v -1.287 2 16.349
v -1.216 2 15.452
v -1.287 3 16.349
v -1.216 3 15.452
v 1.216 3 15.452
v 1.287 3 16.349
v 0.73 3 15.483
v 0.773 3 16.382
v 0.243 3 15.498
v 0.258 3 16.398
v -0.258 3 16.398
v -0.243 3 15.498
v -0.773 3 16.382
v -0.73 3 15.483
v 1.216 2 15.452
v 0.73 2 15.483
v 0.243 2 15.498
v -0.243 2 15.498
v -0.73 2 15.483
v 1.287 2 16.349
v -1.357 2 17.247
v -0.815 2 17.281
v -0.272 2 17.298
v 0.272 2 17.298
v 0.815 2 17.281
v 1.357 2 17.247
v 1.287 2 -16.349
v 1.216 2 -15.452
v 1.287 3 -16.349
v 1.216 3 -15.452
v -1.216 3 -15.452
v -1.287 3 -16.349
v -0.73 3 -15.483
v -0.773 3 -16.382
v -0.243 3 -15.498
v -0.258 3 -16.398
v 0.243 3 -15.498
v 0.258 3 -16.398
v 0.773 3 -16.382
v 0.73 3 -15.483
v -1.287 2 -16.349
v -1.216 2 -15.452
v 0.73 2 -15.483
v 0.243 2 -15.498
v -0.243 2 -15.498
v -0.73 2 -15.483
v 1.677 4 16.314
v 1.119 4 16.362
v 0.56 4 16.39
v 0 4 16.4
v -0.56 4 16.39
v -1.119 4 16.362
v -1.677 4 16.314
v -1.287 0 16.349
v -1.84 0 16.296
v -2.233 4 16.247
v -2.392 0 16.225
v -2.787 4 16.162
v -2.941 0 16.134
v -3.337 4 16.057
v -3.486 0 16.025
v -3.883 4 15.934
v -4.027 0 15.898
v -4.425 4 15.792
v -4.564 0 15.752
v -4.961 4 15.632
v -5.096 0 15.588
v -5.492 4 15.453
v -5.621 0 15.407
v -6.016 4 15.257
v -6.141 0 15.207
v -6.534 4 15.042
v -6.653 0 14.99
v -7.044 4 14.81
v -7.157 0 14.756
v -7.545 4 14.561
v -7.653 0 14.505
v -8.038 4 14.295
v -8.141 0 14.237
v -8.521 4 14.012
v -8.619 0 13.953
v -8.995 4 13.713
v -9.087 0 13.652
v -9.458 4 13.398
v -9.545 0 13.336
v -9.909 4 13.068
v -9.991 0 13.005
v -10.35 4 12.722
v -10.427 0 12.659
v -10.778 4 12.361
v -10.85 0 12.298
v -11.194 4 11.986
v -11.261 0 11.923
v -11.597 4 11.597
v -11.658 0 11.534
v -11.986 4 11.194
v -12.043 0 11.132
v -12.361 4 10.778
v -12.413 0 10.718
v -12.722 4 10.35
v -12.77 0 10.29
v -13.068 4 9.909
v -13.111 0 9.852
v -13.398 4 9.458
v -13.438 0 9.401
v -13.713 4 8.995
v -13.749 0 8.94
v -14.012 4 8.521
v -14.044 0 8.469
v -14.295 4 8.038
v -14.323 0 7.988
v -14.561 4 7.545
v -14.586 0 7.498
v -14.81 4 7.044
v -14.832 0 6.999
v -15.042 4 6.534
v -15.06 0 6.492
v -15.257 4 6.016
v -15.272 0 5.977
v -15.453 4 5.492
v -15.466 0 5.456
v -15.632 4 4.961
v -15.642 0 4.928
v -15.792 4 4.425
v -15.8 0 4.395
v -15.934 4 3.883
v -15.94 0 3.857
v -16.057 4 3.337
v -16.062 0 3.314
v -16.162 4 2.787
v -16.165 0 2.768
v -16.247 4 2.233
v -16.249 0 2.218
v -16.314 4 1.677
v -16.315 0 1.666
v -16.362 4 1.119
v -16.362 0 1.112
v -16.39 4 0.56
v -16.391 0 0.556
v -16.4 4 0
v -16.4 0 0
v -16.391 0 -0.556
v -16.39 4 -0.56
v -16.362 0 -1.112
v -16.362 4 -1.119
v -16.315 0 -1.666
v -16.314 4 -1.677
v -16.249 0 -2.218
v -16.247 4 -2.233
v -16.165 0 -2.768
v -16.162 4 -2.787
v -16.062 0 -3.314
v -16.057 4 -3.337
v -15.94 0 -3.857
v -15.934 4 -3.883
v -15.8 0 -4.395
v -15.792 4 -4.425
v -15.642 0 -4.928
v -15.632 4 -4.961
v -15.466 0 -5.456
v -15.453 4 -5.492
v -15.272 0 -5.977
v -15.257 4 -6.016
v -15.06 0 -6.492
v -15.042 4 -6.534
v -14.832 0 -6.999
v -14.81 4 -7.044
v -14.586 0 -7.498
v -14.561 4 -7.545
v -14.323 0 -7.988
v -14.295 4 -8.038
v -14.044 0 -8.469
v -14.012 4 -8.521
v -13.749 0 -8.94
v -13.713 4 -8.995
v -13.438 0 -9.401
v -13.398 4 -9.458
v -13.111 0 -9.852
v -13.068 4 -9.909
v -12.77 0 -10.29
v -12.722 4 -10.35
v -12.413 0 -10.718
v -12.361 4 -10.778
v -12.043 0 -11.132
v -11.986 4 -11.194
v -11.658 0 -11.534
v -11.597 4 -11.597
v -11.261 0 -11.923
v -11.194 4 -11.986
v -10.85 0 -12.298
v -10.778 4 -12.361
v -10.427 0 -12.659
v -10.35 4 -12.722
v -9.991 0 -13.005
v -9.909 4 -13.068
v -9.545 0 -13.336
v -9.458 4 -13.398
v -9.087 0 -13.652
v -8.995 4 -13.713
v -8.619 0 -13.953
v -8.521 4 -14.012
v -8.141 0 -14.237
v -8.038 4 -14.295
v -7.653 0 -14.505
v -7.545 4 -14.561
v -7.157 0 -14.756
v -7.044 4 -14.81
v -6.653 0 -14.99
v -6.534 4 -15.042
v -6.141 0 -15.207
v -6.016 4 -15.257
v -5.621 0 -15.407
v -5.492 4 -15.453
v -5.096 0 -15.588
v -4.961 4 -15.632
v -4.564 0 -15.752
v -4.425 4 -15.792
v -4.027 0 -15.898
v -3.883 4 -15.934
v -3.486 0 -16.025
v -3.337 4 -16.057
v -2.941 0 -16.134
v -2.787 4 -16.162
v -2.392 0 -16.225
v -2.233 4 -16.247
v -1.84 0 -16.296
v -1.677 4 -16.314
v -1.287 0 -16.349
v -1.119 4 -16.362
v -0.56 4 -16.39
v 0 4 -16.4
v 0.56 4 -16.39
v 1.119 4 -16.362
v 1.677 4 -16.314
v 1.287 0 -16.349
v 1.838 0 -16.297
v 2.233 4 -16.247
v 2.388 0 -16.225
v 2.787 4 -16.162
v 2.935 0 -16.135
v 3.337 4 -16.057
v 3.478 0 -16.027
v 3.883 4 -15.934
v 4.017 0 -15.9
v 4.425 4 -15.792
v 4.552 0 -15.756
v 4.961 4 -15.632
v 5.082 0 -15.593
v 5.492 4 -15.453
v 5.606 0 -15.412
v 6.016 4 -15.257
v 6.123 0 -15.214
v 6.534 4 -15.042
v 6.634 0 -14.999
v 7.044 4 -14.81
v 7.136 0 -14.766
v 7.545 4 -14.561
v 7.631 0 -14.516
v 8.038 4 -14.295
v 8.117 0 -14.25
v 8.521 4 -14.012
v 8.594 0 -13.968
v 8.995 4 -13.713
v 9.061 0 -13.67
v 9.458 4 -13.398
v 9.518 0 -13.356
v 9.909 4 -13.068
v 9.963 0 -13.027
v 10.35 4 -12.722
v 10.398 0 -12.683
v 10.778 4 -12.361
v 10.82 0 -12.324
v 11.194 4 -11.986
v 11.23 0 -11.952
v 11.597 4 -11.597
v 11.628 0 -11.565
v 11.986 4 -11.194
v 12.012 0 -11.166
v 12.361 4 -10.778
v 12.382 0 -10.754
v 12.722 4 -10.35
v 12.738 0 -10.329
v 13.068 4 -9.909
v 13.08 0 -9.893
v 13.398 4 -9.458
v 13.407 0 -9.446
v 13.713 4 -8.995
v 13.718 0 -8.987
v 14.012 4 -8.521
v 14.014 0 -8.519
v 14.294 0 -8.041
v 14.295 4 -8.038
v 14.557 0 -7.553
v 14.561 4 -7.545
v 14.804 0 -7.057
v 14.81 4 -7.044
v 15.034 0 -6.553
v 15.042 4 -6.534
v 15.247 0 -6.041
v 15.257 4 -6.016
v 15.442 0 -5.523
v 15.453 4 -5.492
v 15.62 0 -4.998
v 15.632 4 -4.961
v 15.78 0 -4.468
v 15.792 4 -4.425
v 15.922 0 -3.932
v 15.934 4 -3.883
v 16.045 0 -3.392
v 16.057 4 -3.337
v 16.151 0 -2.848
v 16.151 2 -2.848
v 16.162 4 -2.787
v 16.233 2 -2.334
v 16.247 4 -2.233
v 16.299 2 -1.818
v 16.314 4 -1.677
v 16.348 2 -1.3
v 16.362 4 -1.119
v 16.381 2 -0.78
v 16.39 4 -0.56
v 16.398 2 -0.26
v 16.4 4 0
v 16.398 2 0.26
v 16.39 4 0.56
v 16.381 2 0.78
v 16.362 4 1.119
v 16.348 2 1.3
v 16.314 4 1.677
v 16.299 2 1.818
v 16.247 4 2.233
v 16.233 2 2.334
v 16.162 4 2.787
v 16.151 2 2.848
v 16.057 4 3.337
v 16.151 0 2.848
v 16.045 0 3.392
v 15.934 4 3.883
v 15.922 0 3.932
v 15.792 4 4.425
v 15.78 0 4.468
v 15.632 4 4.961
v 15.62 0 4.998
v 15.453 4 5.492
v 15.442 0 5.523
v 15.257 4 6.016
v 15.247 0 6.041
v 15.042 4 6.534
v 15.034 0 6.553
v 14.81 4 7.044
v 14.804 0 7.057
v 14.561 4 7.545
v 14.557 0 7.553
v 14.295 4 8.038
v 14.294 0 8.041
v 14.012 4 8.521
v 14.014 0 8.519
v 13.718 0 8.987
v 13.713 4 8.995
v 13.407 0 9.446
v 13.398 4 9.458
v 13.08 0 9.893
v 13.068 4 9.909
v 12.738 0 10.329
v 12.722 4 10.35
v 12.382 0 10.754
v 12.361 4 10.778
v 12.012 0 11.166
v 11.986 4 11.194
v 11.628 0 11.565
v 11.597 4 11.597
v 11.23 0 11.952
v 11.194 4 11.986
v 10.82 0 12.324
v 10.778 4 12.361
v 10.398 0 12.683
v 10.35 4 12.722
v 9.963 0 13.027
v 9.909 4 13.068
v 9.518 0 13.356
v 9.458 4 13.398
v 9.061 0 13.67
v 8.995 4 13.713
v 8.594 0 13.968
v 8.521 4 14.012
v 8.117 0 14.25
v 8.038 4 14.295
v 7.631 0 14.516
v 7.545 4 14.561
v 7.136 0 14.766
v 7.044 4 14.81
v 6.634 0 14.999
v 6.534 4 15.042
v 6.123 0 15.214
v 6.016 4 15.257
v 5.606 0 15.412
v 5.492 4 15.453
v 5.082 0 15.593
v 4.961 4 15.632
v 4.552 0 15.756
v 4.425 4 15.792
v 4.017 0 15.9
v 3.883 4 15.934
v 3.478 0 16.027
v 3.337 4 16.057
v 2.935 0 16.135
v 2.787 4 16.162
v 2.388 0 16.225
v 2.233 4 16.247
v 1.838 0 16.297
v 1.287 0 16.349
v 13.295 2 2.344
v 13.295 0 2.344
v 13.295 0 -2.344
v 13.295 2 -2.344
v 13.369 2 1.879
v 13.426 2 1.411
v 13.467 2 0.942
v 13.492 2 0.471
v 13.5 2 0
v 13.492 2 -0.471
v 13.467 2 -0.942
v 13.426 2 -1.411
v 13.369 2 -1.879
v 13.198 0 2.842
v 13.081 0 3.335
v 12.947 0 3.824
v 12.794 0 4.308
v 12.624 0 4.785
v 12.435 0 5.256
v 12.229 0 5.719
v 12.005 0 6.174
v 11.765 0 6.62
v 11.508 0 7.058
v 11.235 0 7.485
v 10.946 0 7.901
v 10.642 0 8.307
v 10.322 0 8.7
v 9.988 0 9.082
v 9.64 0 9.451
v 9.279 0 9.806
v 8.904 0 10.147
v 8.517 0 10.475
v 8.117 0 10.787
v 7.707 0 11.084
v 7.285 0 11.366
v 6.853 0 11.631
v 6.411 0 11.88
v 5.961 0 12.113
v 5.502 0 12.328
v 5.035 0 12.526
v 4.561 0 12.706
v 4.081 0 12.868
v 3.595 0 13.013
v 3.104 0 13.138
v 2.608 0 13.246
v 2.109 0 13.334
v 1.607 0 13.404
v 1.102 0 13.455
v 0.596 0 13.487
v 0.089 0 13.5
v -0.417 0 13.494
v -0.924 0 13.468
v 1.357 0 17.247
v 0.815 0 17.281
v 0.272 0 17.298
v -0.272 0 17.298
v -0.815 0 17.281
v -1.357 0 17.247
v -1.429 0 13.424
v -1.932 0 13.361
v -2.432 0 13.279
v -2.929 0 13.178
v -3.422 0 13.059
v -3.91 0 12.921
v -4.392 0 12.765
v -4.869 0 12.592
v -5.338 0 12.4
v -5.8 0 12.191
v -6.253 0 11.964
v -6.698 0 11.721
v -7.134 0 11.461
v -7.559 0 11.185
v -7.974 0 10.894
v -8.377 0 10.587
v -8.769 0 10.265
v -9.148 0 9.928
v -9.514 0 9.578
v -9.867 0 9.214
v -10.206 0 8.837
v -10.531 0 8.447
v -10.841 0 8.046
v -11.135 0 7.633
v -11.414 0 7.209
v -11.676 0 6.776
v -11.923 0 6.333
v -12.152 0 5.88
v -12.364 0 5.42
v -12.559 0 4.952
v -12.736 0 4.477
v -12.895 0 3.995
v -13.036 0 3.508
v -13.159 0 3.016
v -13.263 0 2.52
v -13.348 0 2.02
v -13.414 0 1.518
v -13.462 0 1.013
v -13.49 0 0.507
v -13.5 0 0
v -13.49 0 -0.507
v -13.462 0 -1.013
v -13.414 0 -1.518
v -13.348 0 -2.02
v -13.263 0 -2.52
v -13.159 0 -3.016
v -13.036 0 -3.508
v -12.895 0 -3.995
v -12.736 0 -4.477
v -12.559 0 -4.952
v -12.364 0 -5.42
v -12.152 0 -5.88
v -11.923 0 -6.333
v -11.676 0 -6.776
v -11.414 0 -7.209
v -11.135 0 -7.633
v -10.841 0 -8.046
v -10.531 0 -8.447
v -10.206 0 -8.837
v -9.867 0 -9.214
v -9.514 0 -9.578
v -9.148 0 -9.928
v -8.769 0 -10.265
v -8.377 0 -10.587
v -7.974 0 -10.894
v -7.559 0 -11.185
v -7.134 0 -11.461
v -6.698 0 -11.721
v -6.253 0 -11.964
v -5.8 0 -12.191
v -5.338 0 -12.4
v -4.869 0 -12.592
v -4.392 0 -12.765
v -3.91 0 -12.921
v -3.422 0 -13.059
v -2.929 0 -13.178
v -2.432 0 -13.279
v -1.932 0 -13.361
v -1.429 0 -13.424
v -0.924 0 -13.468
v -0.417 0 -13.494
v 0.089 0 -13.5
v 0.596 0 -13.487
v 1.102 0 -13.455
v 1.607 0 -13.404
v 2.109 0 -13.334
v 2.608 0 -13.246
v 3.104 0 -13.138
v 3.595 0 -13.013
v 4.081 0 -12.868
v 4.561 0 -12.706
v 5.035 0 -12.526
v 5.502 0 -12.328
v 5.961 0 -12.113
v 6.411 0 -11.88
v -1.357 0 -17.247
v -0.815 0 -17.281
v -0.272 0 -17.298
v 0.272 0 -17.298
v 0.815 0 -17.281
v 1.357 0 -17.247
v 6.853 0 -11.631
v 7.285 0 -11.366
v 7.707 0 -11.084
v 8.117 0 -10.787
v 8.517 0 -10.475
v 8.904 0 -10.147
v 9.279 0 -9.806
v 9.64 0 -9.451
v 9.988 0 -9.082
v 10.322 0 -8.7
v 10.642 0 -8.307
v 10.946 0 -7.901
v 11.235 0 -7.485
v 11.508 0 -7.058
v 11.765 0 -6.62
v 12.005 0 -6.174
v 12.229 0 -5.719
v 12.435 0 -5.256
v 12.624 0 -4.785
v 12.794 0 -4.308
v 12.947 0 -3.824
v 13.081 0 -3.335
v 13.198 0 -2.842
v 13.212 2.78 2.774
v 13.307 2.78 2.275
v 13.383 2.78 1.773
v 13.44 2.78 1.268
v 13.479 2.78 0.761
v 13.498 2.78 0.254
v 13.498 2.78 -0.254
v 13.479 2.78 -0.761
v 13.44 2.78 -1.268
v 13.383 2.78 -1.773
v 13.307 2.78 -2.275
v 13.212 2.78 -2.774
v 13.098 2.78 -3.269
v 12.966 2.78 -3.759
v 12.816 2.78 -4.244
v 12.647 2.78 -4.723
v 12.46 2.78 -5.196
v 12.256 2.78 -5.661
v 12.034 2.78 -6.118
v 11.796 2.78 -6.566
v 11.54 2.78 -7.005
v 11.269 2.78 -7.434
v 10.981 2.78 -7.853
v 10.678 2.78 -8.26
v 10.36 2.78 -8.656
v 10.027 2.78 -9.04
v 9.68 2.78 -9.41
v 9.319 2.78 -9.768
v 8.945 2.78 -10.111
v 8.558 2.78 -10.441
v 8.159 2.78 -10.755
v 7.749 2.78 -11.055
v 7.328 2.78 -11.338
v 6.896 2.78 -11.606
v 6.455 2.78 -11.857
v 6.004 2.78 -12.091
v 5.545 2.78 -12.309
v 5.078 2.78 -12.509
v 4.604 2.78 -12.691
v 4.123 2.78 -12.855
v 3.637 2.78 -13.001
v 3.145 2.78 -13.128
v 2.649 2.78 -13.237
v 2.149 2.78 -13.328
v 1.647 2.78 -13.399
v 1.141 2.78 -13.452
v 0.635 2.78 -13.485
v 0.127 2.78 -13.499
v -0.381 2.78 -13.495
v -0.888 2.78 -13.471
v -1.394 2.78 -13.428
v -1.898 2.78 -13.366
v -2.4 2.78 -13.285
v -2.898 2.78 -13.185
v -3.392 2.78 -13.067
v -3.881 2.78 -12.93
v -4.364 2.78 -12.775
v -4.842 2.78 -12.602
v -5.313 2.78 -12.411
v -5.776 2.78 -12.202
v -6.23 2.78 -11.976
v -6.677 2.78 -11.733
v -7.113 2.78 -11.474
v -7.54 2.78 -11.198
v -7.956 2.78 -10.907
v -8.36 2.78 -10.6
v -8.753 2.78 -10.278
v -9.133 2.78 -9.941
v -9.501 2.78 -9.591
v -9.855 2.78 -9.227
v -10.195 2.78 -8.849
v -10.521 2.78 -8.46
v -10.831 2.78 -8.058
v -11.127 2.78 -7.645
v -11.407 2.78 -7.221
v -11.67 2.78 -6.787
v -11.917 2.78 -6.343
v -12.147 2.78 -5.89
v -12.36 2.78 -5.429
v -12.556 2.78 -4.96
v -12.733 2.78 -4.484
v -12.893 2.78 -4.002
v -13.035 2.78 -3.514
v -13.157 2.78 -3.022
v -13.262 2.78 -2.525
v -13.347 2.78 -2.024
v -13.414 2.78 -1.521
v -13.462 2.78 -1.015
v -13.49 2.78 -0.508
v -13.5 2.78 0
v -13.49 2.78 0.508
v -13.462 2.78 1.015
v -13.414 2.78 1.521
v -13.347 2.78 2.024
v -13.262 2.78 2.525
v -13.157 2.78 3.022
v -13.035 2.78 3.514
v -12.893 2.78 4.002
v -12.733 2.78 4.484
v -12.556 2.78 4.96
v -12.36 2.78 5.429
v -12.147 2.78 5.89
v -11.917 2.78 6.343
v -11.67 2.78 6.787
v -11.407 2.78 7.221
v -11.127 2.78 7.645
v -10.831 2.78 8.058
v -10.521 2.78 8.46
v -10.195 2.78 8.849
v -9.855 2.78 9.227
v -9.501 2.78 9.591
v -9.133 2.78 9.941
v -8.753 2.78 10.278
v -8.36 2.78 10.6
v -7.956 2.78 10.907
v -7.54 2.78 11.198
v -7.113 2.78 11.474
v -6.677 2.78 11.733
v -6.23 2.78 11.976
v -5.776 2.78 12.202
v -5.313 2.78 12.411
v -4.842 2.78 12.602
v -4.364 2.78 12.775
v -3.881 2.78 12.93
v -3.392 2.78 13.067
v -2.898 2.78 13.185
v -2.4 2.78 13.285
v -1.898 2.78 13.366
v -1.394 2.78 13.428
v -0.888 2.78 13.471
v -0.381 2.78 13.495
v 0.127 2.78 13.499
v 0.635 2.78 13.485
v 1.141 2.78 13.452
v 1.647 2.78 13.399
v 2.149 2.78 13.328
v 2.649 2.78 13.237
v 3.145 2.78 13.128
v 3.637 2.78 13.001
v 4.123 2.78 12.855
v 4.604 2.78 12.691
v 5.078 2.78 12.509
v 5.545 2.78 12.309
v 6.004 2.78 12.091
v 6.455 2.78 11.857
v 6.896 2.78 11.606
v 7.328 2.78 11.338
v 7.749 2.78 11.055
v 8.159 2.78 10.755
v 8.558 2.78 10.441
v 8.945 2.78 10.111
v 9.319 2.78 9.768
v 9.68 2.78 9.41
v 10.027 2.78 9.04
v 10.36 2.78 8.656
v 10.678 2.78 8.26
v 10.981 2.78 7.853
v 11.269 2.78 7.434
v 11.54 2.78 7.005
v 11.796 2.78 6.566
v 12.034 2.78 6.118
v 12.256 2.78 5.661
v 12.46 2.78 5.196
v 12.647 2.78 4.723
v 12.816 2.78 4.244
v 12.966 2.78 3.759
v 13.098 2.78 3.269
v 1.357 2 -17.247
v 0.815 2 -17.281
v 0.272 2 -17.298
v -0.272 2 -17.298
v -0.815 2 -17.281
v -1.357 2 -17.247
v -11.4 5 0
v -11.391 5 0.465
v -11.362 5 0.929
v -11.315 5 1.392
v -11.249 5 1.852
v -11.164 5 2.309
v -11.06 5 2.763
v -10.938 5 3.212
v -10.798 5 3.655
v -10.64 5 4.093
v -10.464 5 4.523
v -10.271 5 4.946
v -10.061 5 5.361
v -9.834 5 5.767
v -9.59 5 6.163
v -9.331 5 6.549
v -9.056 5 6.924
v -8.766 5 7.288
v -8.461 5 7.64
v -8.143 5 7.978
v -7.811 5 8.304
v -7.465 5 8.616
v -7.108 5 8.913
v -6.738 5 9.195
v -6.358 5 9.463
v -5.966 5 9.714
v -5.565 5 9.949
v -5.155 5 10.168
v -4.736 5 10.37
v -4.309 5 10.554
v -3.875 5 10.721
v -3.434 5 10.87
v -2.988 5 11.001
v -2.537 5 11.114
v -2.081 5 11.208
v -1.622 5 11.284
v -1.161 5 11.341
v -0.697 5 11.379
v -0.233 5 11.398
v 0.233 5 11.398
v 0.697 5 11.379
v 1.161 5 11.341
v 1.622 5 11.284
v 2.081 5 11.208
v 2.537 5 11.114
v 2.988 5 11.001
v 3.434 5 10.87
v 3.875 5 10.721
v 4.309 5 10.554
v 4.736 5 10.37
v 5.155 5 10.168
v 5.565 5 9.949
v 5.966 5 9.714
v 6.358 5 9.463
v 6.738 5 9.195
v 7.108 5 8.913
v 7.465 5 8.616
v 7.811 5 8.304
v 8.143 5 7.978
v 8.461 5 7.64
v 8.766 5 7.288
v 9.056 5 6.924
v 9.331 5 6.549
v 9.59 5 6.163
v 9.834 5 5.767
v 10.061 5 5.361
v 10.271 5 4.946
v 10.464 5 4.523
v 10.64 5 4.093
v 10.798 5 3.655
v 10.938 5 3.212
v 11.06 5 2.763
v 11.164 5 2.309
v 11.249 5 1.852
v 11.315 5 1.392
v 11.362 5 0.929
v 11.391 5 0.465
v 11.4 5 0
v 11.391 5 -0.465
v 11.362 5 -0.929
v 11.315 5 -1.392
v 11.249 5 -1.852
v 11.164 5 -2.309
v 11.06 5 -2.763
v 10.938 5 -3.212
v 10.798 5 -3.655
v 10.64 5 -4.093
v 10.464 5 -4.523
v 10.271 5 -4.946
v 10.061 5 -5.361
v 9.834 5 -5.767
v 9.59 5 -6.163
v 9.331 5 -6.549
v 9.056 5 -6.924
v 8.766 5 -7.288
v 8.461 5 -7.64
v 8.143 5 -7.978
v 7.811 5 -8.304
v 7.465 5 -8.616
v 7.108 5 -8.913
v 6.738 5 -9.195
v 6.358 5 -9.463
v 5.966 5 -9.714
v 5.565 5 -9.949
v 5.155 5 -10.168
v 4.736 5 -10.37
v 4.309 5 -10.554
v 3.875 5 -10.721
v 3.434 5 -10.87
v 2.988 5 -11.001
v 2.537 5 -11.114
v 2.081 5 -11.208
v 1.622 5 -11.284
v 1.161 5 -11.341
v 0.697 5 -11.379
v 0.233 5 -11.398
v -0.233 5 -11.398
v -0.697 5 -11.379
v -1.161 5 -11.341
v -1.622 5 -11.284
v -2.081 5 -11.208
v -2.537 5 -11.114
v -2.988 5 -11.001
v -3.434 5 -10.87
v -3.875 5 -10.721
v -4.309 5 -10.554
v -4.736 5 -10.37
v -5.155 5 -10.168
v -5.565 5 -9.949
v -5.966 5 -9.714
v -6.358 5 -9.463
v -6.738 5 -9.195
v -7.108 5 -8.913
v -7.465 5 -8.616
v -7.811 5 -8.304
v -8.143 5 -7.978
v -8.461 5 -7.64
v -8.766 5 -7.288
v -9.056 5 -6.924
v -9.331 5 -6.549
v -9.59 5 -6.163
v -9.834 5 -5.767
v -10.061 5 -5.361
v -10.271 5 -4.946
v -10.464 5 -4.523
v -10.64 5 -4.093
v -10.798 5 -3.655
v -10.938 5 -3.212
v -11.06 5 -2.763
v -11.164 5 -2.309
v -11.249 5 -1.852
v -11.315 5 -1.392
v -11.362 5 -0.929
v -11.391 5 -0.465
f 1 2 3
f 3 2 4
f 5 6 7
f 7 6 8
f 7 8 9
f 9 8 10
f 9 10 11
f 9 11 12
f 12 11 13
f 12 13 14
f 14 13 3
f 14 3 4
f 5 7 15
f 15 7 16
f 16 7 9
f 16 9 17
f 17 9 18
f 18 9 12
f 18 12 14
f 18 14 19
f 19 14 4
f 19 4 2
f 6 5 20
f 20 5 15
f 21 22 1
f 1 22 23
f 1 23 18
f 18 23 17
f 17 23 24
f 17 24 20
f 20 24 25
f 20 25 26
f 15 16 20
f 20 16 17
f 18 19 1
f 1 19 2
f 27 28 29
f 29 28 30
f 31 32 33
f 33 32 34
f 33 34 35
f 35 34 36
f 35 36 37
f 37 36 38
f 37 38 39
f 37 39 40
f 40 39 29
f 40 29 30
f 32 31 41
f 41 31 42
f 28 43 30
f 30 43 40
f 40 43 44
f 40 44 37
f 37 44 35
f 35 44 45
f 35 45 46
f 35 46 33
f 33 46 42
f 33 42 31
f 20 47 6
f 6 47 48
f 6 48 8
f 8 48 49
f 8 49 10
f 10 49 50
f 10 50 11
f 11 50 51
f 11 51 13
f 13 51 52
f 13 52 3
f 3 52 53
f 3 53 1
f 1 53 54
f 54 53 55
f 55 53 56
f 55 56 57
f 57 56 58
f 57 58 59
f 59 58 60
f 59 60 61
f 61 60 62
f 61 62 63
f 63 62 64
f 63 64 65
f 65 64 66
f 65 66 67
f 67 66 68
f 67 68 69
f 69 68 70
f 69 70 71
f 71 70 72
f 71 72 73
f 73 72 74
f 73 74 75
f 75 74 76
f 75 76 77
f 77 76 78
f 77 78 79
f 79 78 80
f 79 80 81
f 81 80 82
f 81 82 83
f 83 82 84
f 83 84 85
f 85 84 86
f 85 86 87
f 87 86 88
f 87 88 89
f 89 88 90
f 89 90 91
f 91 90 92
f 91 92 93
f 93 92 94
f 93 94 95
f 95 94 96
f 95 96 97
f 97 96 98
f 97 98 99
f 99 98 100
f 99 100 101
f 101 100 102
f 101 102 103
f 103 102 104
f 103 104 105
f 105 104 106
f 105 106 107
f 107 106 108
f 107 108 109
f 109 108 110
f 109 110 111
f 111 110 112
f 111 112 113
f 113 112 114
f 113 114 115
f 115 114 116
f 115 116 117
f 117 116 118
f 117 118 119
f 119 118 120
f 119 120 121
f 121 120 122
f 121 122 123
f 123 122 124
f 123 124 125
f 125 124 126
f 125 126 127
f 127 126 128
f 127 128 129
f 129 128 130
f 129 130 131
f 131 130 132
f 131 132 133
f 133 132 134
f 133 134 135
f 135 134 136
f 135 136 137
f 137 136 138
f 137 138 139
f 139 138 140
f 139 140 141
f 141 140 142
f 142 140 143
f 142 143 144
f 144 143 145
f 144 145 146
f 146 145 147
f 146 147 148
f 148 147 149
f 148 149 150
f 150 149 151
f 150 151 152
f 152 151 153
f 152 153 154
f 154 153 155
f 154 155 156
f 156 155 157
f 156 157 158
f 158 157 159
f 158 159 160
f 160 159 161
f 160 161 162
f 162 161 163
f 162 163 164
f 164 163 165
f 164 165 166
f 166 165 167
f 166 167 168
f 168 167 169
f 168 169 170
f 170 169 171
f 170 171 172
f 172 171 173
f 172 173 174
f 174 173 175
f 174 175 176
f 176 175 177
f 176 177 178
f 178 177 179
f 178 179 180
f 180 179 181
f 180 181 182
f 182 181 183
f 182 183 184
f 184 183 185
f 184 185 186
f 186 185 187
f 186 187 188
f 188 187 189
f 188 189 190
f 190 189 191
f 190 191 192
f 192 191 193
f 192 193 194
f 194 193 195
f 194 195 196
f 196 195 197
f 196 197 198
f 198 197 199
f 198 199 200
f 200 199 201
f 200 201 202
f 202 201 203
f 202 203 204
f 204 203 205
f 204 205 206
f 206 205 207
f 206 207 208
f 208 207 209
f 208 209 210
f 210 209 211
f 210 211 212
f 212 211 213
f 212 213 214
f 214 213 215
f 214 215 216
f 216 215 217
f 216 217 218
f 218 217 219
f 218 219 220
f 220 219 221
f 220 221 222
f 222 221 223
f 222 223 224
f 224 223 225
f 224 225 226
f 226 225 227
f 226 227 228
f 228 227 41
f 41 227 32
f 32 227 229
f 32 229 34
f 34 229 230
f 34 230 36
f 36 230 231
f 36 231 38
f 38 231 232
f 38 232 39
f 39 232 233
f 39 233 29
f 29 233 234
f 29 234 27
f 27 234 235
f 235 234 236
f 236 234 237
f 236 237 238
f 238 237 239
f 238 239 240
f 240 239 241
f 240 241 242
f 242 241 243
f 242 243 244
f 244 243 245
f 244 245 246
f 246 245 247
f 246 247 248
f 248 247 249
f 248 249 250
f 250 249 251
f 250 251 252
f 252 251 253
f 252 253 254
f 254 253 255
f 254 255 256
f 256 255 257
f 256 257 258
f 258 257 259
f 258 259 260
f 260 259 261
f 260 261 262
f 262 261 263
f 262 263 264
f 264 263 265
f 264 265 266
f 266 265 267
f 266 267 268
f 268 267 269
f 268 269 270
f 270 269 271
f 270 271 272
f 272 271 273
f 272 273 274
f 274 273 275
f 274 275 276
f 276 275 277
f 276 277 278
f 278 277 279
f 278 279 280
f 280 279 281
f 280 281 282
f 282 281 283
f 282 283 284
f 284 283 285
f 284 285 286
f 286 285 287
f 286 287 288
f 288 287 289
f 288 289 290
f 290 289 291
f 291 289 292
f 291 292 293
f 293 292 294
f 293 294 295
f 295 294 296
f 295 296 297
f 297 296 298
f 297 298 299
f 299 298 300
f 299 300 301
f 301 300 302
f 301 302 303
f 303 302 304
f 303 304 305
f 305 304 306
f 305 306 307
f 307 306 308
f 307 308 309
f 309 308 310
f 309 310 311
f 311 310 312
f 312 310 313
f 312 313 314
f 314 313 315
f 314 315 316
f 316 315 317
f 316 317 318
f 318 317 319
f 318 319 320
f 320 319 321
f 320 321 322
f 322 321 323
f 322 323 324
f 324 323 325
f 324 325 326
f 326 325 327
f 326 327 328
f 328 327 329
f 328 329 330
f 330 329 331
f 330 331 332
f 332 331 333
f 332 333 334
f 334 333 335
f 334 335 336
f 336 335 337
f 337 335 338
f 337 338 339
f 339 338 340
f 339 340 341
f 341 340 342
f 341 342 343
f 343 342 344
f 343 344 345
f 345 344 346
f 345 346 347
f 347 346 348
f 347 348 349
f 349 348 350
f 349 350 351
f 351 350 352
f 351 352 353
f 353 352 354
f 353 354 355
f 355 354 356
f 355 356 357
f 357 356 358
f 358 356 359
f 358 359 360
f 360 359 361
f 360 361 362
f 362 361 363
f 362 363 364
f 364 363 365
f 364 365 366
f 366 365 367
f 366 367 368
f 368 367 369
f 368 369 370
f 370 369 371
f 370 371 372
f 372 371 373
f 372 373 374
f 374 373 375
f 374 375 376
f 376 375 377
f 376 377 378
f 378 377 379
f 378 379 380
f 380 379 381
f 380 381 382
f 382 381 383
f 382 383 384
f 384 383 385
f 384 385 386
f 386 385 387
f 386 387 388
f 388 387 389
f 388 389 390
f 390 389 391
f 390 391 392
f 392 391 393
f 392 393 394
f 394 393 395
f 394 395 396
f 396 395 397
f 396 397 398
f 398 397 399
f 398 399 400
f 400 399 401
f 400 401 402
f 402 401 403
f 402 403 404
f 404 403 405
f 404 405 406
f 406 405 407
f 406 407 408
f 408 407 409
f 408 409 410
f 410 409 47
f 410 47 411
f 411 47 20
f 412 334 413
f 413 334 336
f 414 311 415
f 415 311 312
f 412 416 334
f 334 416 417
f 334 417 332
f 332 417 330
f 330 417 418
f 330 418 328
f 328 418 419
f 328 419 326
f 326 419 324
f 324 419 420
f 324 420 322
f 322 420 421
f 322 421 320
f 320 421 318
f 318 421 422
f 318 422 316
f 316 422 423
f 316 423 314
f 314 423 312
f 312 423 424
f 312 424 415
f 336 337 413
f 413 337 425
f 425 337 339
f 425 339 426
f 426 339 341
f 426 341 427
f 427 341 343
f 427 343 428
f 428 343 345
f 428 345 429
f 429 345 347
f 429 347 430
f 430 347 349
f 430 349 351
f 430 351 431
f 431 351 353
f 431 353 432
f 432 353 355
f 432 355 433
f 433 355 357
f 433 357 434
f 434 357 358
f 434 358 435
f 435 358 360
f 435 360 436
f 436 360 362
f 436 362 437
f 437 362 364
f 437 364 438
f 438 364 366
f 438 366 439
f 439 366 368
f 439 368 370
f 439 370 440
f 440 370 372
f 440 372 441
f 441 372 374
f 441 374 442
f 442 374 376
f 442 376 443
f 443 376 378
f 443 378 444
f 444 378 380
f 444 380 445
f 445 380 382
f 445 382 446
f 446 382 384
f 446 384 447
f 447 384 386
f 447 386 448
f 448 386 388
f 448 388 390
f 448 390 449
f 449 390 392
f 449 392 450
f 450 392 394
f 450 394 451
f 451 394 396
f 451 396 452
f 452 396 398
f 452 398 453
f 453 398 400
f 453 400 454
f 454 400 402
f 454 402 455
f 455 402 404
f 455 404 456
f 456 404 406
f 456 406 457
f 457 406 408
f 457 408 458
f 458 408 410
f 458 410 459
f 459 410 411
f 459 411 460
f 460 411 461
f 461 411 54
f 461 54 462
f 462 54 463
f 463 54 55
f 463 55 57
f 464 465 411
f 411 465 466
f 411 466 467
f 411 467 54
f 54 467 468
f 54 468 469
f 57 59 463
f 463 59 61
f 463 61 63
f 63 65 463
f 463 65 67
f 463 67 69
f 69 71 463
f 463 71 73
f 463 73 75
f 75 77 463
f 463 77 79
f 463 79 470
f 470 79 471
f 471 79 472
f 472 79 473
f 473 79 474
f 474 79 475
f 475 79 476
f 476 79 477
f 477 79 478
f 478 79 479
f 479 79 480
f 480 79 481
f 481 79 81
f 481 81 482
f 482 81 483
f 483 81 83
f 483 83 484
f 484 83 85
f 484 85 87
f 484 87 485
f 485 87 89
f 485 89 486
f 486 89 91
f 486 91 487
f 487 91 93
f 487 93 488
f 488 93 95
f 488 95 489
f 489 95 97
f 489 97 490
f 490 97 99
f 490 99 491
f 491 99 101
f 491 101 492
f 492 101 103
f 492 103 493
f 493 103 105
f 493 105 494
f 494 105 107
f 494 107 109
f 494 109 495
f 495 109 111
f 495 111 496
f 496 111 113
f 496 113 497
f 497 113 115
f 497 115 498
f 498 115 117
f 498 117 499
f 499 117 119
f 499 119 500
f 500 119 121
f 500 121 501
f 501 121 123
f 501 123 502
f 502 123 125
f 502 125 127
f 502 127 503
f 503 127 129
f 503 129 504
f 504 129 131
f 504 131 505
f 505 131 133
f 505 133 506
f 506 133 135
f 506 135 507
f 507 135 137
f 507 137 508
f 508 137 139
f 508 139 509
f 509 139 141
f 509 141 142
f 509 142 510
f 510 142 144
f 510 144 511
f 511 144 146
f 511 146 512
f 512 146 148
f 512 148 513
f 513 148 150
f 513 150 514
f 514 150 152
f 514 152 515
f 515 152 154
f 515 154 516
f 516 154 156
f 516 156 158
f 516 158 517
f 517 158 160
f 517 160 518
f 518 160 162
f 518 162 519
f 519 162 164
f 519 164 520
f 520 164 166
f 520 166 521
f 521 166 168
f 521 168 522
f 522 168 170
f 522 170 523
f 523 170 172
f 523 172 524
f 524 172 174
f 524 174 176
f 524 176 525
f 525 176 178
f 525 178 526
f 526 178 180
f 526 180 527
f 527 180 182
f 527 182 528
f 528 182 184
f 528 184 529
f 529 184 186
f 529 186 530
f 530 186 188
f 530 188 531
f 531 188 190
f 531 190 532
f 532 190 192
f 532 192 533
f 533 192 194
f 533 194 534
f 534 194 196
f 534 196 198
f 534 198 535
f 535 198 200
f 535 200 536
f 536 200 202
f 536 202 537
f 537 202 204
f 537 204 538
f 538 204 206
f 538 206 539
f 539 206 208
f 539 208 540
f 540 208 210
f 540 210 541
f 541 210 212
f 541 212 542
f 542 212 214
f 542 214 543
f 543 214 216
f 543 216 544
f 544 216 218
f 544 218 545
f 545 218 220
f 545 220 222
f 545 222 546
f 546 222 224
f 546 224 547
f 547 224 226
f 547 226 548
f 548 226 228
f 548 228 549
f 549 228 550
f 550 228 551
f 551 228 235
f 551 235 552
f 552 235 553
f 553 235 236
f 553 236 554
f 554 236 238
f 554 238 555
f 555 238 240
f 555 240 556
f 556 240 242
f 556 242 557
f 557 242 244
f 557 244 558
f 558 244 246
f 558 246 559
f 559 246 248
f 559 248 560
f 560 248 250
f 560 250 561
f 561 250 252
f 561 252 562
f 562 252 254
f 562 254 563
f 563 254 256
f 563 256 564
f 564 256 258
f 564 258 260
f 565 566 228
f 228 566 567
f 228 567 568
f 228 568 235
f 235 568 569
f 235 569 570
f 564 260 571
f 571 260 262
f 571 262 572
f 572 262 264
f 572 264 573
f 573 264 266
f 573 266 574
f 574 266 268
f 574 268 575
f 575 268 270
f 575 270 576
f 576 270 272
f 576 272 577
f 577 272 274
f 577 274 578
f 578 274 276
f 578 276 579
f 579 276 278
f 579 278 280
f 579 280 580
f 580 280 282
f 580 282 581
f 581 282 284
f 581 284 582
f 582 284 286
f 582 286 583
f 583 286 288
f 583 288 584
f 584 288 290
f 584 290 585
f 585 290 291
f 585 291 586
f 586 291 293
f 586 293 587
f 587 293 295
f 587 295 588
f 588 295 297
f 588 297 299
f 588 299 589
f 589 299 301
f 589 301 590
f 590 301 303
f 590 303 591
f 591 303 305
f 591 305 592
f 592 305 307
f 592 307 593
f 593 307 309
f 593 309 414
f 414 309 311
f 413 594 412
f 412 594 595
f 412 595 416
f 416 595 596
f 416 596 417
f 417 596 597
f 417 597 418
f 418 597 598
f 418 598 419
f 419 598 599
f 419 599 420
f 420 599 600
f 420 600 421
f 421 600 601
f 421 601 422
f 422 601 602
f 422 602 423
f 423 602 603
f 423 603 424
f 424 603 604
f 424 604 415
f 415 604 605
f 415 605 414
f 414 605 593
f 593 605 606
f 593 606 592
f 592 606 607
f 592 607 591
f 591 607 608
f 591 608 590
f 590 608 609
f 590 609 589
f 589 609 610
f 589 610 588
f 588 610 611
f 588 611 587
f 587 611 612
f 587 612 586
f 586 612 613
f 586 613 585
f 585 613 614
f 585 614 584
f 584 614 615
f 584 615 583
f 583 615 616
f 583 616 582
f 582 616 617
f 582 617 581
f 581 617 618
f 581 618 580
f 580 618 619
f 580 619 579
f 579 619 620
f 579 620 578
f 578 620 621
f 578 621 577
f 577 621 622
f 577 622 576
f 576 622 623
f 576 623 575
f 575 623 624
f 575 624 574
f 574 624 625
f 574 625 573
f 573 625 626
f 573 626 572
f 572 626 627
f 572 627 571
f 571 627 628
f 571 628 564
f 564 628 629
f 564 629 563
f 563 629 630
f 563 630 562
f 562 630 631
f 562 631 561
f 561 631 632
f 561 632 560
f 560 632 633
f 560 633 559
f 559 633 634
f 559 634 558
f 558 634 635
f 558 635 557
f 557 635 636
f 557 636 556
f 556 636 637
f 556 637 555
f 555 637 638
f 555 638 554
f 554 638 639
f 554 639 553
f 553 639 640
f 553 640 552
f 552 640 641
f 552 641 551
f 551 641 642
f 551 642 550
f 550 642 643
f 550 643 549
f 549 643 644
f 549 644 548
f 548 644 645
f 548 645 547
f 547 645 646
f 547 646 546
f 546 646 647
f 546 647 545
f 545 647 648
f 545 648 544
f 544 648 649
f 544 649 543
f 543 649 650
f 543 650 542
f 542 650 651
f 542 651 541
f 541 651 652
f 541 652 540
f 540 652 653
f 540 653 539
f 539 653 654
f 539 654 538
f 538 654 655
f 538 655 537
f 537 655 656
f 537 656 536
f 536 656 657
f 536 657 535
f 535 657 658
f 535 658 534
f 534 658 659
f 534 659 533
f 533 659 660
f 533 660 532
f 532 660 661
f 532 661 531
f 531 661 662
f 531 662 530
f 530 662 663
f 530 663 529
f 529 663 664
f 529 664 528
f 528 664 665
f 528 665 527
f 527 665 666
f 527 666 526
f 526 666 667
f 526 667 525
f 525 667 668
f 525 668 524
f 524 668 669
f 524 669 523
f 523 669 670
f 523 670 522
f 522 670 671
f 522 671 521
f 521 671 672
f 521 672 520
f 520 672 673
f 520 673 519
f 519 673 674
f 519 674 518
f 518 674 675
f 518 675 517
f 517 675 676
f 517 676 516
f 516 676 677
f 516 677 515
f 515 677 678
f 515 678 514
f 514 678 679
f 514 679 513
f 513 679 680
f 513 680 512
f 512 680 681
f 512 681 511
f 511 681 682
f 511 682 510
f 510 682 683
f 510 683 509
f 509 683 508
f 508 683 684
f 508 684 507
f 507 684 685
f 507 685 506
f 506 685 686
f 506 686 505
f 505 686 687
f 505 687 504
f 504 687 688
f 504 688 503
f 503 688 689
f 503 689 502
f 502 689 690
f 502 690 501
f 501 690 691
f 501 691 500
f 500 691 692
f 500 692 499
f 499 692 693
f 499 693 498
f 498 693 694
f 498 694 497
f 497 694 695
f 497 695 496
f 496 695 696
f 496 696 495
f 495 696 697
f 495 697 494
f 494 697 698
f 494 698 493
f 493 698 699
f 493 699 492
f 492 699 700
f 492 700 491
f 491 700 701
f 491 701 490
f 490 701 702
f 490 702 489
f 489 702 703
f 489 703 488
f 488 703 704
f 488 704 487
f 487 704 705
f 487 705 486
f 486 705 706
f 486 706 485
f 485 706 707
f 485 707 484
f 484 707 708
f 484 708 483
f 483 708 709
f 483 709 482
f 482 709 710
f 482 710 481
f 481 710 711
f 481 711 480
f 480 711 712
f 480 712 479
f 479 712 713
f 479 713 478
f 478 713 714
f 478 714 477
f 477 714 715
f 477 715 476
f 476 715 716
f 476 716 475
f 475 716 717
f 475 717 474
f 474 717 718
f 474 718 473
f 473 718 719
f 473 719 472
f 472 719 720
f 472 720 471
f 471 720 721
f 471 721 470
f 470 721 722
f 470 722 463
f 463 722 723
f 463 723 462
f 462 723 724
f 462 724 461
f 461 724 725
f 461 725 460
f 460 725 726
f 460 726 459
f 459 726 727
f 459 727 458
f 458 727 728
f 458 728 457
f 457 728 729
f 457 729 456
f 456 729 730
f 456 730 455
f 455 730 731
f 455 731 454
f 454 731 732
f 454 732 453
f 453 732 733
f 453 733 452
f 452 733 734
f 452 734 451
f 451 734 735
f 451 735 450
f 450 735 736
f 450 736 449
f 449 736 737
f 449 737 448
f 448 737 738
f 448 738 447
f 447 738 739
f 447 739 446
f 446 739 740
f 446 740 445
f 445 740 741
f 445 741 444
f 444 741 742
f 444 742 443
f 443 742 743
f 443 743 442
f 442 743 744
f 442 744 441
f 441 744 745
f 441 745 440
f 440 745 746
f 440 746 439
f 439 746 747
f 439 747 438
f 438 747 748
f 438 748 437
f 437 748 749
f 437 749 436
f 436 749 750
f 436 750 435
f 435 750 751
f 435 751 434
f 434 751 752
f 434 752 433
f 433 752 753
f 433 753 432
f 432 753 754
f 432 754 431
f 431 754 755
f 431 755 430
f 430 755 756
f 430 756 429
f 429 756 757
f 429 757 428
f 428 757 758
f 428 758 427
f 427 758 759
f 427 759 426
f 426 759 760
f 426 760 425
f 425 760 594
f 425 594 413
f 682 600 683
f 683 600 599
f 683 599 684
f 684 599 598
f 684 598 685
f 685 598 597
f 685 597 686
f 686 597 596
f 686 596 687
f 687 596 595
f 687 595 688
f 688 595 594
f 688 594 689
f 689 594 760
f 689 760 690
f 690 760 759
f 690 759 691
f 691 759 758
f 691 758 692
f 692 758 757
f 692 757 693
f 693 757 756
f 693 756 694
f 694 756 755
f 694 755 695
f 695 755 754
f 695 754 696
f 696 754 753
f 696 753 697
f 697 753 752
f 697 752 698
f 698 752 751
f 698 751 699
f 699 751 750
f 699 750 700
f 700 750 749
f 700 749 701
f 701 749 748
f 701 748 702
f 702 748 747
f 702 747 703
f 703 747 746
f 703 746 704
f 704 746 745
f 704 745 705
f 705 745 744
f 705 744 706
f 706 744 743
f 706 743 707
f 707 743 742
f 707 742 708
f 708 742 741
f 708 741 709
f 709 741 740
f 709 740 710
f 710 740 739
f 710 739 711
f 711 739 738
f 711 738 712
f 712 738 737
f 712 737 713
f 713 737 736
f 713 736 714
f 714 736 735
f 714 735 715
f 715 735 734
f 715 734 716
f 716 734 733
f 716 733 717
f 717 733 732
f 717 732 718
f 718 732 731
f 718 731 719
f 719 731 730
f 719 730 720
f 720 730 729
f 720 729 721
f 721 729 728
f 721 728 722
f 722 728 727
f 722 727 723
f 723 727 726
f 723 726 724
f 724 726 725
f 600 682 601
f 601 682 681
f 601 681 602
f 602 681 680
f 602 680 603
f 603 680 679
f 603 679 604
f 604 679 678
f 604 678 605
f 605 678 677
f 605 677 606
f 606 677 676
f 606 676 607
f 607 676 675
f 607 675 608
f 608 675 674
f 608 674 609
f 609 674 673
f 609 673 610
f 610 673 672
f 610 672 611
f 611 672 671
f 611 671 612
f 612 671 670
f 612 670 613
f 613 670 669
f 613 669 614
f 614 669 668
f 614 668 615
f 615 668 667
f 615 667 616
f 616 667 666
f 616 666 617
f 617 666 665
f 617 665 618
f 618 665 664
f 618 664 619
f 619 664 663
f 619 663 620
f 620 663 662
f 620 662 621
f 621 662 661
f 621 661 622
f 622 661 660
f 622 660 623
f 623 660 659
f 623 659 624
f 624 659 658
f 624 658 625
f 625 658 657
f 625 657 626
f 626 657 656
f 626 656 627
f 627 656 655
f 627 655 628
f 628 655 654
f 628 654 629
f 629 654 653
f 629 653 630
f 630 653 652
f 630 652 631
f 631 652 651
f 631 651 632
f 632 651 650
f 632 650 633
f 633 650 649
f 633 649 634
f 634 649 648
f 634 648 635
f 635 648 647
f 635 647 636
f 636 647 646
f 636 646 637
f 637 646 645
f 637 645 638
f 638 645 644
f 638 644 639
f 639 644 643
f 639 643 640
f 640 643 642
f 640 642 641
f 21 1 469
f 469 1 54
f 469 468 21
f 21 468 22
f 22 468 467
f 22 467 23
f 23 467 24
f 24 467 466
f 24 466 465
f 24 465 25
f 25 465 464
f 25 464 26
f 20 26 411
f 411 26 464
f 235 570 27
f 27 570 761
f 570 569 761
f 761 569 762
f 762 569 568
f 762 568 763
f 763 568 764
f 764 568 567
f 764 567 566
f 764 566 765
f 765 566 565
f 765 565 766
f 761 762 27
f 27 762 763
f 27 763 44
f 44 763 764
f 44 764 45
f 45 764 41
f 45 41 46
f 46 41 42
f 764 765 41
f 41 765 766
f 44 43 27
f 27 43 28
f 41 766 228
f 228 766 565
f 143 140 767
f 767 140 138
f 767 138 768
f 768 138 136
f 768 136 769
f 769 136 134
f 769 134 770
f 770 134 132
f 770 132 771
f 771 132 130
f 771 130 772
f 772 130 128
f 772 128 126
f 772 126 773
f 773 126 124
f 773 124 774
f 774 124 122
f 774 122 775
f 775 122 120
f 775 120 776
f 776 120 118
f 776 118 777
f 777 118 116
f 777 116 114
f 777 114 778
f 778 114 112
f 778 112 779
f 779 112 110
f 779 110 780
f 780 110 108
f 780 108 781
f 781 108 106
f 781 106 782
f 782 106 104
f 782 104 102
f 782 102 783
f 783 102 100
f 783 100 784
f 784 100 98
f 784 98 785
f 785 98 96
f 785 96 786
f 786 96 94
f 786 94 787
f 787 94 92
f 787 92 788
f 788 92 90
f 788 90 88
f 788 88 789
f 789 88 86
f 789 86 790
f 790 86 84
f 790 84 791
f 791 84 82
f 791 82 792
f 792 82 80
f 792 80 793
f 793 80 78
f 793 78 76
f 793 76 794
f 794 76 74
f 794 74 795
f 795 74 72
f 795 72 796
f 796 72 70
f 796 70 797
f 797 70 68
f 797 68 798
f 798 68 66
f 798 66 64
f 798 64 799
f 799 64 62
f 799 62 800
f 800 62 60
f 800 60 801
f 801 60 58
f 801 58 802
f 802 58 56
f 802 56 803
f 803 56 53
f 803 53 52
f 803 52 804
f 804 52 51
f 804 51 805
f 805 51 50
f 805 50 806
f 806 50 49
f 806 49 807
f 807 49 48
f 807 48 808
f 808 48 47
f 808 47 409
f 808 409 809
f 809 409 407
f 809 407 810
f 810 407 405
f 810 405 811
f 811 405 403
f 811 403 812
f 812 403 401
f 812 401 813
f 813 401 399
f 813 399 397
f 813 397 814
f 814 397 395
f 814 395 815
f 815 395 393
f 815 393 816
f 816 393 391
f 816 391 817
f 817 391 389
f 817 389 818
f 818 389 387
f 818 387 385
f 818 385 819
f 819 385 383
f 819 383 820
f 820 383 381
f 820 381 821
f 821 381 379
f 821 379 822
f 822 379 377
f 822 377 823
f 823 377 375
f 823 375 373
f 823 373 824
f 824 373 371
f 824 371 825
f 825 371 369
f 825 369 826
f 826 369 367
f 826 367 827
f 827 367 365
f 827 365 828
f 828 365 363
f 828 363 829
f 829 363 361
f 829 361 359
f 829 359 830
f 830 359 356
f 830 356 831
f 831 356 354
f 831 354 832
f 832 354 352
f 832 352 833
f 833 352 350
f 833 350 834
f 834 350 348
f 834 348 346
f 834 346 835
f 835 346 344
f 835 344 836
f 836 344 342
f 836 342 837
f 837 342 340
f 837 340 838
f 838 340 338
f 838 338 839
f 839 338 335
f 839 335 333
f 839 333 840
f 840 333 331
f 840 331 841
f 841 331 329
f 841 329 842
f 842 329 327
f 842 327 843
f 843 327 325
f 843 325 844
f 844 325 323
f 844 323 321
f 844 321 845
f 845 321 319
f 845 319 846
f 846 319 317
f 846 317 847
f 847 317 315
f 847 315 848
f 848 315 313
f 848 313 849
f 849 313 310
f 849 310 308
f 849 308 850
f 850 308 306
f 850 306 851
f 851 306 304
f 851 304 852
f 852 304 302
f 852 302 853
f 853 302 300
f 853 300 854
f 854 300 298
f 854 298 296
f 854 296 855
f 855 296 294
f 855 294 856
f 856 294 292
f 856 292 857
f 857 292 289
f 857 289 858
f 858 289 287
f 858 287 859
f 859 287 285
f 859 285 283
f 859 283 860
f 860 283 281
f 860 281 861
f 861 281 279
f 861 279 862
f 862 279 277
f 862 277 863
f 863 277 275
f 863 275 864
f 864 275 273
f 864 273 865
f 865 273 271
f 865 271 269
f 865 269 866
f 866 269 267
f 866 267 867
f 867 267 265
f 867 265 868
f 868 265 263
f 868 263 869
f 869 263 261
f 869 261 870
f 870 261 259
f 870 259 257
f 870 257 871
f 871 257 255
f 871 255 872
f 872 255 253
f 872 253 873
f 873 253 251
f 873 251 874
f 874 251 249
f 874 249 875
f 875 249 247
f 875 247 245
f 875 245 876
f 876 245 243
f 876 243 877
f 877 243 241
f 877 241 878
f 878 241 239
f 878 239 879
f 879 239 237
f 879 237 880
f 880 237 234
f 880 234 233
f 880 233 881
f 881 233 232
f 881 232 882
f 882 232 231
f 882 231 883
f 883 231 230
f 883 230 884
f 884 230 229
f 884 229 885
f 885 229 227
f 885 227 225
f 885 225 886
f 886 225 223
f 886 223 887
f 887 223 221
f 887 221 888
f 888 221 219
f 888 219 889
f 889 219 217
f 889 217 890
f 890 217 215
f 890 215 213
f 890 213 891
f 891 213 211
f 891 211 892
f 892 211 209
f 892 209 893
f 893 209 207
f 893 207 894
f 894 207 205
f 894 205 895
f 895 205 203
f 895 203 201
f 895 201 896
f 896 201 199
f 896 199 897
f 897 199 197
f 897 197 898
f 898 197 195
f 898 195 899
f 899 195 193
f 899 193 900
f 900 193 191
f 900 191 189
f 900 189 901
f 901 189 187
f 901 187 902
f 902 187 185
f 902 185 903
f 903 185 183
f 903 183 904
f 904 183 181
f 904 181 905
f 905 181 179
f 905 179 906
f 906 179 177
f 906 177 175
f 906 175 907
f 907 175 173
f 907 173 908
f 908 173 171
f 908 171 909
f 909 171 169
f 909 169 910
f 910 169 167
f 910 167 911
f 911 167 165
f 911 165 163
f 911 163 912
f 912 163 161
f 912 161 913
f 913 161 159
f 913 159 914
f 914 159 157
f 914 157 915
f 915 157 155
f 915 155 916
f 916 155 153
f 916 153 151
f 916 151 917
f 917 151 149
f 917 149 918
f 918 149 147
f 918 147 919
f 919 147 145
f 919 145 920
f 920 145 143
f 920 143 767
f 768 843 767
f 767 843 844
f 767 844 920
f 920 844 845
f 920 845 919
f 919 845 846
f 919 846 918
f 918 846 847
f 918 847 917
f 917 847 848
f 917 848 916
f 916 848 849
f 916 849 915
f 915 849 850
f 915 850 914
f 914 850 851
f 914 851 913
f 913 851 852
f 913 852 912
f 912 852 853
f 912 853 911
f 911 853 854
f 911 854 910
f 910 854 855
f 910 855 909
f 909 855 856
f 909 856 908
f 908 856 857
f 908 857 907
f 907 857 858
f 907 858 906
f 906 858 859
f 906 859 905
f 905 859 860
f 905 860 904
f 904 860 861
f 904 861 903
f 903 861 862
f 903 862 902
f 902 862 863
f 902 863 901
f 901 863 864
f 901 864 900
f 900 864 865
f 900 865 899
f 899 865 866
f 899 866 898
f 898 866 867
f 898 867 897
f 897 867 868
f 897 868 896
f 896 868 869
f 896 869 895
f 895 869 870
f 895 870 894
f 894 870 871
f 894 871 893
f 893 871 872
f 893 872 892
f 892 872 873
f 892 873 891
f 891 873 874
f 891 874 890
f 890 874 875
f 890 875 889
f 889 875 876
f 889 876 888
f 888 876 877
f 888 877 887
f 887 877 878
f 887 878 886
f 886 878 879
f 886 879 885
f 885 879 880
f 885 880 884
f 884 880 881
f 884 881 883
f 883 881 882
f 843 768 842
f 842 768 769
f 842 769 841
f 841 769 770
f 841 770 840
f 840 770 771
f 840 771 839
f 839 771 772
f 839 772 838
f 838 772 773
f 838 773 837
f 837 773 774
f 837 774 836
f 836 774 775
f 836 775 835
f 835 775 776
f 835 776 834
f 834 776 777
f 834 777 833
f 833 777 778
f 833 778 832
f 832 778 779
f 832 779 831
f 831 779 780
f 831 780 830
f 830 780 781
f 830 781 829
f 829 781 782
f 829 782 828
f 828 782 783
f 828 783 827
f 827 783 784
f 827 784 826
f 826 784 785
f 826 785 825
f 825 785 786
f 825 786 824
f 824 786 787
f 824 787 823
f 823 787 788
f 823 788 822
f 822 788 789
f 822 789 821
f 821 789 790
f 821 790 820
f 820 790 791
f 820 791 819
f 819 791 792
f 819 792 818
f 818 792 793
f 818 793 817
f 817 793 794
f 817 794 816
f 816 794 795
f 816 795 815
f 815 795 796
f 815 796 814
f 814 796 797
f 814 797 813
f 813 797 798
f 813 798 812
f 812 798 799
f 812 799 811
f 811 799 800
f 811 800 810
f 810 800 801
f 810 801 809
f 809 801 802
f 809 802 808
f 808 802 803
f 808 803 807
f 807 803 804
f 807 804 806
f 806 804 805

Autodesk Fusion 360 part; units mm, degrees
sketch "Sketch1" plane through (0, 0, 0) normal (0, 1, 0) x (1, 0, 0)
  circle A0 centre (0, 0) radius 16.4
  dimension "d1" = 32.8
extrude "Extrude1" add sketch "Sketch1" along normal blind 5
chamfer "Chamfer1" distance 5 distance2 1 1 edges at (-15.2902, 5, 5.9305) measured on face at (3.2266, 5, -3.4774)
sketch "Sketch2" plane through (0, 0, 0) normal (1, 0, 0) x (0, 0, -1)
  line L0 (16.4, 0) -> (17.3, 0)
  line L1 (17.3, 0) -> (17.3, 2)
  line L2 (17.3, 2) -> (16.4, 2)
  line L3 (16.4, 2) -> (16.4, 0)
  line L4 (-16.4, 0) -> (-17.3, 0)
  line L5 (-17.3, 0) -> (-17.3, 2)
  line L6 (-17.3, 2) -> (-16.4, 2)
  line L7 (-16.4, 2) -> (-16.4, 0)
  dimension "d7" = 16.4
  dimension "d8" = 2
  dimension "d9" = 0.9
  dimension "d10" = 16.4
  dimension "d11" = 2
  dimension "d12" = 0.9
revolve "Revolve1" add sketch "Sketch2" angle 4.5 about axis through (0, 1.75, 0) along (0, 1, 0) second angle 4.5
sketch "Sketch3" plane through (0, 0, 0) normal (0, 1, 0) x (1, 0, 0)
  circle A0 centre (0, 0) radius 13.5
  dimension "d15" = 27
extrude "Extrude2" cut sketch "Sketch3" along normal blind 2.78
sketch "Sketch4" plane through (0, 0, 0) normal (0, 0, 1) x (1, 0, 0)
  line L0 (0, 0) -> (16.5, 0)
  line L1 (16.5, 0) -> (16.5, 2)
  line L2 (16.5, 2) -> (0, 2)
  line L3 (0, 2) -> (0, 0)
  dimension "d18" = 16.5
  dimension "d19" = 2
revolve "Revolve2" cut sketch "Sketch4" angle 10 about axis through (0, 1.75, 0) along (0, 1, 0) second angle 10
sketch "Sketch5" plane through (0, 0, 0) normal (1, 0, 0) x (0, 0, -1)
  line L0 (-16.5, 2) -> (-15.5, 2)
  line L1 (-15.5, 2) -> (-15.5, 3)
  line L2 (-15.5, 3) -> (-16.5, 3)
  line L3 (-16.5, 3) -> (-16.5, 2)
  line L4 (16.5, 0) -> (16.5, 2)
  line L5 (16.5, 2) -> (15.5, 2)
  line L6 (15.5, 2) -> (15.5, 3)
  line L7 (15.5, 3) -> (16.5, 3)
  line L8 (16.5, 3) -> (16.5, 2)
  dimension "d24" = 1
  dimension "d25" = 1
  dimension "d28" = 16.5
  dimension "d29" = 2
  dimension "d30" = 1
  dimension "d31" = 1
revolve "Revolve4" cut sketch "Sketch5" angle 4.5 about axis through (0, 1.75, 0) along (0, 1, 0) second angle 4.5 contours L5 L6 L7 L8
revolve "Revolve3" cut sketch "Sketch5" angle 4.5 about axis through (0, 1.75, 0) along (0, 1, 0) second angle 4.5 contours L0 L1 L2 L3
